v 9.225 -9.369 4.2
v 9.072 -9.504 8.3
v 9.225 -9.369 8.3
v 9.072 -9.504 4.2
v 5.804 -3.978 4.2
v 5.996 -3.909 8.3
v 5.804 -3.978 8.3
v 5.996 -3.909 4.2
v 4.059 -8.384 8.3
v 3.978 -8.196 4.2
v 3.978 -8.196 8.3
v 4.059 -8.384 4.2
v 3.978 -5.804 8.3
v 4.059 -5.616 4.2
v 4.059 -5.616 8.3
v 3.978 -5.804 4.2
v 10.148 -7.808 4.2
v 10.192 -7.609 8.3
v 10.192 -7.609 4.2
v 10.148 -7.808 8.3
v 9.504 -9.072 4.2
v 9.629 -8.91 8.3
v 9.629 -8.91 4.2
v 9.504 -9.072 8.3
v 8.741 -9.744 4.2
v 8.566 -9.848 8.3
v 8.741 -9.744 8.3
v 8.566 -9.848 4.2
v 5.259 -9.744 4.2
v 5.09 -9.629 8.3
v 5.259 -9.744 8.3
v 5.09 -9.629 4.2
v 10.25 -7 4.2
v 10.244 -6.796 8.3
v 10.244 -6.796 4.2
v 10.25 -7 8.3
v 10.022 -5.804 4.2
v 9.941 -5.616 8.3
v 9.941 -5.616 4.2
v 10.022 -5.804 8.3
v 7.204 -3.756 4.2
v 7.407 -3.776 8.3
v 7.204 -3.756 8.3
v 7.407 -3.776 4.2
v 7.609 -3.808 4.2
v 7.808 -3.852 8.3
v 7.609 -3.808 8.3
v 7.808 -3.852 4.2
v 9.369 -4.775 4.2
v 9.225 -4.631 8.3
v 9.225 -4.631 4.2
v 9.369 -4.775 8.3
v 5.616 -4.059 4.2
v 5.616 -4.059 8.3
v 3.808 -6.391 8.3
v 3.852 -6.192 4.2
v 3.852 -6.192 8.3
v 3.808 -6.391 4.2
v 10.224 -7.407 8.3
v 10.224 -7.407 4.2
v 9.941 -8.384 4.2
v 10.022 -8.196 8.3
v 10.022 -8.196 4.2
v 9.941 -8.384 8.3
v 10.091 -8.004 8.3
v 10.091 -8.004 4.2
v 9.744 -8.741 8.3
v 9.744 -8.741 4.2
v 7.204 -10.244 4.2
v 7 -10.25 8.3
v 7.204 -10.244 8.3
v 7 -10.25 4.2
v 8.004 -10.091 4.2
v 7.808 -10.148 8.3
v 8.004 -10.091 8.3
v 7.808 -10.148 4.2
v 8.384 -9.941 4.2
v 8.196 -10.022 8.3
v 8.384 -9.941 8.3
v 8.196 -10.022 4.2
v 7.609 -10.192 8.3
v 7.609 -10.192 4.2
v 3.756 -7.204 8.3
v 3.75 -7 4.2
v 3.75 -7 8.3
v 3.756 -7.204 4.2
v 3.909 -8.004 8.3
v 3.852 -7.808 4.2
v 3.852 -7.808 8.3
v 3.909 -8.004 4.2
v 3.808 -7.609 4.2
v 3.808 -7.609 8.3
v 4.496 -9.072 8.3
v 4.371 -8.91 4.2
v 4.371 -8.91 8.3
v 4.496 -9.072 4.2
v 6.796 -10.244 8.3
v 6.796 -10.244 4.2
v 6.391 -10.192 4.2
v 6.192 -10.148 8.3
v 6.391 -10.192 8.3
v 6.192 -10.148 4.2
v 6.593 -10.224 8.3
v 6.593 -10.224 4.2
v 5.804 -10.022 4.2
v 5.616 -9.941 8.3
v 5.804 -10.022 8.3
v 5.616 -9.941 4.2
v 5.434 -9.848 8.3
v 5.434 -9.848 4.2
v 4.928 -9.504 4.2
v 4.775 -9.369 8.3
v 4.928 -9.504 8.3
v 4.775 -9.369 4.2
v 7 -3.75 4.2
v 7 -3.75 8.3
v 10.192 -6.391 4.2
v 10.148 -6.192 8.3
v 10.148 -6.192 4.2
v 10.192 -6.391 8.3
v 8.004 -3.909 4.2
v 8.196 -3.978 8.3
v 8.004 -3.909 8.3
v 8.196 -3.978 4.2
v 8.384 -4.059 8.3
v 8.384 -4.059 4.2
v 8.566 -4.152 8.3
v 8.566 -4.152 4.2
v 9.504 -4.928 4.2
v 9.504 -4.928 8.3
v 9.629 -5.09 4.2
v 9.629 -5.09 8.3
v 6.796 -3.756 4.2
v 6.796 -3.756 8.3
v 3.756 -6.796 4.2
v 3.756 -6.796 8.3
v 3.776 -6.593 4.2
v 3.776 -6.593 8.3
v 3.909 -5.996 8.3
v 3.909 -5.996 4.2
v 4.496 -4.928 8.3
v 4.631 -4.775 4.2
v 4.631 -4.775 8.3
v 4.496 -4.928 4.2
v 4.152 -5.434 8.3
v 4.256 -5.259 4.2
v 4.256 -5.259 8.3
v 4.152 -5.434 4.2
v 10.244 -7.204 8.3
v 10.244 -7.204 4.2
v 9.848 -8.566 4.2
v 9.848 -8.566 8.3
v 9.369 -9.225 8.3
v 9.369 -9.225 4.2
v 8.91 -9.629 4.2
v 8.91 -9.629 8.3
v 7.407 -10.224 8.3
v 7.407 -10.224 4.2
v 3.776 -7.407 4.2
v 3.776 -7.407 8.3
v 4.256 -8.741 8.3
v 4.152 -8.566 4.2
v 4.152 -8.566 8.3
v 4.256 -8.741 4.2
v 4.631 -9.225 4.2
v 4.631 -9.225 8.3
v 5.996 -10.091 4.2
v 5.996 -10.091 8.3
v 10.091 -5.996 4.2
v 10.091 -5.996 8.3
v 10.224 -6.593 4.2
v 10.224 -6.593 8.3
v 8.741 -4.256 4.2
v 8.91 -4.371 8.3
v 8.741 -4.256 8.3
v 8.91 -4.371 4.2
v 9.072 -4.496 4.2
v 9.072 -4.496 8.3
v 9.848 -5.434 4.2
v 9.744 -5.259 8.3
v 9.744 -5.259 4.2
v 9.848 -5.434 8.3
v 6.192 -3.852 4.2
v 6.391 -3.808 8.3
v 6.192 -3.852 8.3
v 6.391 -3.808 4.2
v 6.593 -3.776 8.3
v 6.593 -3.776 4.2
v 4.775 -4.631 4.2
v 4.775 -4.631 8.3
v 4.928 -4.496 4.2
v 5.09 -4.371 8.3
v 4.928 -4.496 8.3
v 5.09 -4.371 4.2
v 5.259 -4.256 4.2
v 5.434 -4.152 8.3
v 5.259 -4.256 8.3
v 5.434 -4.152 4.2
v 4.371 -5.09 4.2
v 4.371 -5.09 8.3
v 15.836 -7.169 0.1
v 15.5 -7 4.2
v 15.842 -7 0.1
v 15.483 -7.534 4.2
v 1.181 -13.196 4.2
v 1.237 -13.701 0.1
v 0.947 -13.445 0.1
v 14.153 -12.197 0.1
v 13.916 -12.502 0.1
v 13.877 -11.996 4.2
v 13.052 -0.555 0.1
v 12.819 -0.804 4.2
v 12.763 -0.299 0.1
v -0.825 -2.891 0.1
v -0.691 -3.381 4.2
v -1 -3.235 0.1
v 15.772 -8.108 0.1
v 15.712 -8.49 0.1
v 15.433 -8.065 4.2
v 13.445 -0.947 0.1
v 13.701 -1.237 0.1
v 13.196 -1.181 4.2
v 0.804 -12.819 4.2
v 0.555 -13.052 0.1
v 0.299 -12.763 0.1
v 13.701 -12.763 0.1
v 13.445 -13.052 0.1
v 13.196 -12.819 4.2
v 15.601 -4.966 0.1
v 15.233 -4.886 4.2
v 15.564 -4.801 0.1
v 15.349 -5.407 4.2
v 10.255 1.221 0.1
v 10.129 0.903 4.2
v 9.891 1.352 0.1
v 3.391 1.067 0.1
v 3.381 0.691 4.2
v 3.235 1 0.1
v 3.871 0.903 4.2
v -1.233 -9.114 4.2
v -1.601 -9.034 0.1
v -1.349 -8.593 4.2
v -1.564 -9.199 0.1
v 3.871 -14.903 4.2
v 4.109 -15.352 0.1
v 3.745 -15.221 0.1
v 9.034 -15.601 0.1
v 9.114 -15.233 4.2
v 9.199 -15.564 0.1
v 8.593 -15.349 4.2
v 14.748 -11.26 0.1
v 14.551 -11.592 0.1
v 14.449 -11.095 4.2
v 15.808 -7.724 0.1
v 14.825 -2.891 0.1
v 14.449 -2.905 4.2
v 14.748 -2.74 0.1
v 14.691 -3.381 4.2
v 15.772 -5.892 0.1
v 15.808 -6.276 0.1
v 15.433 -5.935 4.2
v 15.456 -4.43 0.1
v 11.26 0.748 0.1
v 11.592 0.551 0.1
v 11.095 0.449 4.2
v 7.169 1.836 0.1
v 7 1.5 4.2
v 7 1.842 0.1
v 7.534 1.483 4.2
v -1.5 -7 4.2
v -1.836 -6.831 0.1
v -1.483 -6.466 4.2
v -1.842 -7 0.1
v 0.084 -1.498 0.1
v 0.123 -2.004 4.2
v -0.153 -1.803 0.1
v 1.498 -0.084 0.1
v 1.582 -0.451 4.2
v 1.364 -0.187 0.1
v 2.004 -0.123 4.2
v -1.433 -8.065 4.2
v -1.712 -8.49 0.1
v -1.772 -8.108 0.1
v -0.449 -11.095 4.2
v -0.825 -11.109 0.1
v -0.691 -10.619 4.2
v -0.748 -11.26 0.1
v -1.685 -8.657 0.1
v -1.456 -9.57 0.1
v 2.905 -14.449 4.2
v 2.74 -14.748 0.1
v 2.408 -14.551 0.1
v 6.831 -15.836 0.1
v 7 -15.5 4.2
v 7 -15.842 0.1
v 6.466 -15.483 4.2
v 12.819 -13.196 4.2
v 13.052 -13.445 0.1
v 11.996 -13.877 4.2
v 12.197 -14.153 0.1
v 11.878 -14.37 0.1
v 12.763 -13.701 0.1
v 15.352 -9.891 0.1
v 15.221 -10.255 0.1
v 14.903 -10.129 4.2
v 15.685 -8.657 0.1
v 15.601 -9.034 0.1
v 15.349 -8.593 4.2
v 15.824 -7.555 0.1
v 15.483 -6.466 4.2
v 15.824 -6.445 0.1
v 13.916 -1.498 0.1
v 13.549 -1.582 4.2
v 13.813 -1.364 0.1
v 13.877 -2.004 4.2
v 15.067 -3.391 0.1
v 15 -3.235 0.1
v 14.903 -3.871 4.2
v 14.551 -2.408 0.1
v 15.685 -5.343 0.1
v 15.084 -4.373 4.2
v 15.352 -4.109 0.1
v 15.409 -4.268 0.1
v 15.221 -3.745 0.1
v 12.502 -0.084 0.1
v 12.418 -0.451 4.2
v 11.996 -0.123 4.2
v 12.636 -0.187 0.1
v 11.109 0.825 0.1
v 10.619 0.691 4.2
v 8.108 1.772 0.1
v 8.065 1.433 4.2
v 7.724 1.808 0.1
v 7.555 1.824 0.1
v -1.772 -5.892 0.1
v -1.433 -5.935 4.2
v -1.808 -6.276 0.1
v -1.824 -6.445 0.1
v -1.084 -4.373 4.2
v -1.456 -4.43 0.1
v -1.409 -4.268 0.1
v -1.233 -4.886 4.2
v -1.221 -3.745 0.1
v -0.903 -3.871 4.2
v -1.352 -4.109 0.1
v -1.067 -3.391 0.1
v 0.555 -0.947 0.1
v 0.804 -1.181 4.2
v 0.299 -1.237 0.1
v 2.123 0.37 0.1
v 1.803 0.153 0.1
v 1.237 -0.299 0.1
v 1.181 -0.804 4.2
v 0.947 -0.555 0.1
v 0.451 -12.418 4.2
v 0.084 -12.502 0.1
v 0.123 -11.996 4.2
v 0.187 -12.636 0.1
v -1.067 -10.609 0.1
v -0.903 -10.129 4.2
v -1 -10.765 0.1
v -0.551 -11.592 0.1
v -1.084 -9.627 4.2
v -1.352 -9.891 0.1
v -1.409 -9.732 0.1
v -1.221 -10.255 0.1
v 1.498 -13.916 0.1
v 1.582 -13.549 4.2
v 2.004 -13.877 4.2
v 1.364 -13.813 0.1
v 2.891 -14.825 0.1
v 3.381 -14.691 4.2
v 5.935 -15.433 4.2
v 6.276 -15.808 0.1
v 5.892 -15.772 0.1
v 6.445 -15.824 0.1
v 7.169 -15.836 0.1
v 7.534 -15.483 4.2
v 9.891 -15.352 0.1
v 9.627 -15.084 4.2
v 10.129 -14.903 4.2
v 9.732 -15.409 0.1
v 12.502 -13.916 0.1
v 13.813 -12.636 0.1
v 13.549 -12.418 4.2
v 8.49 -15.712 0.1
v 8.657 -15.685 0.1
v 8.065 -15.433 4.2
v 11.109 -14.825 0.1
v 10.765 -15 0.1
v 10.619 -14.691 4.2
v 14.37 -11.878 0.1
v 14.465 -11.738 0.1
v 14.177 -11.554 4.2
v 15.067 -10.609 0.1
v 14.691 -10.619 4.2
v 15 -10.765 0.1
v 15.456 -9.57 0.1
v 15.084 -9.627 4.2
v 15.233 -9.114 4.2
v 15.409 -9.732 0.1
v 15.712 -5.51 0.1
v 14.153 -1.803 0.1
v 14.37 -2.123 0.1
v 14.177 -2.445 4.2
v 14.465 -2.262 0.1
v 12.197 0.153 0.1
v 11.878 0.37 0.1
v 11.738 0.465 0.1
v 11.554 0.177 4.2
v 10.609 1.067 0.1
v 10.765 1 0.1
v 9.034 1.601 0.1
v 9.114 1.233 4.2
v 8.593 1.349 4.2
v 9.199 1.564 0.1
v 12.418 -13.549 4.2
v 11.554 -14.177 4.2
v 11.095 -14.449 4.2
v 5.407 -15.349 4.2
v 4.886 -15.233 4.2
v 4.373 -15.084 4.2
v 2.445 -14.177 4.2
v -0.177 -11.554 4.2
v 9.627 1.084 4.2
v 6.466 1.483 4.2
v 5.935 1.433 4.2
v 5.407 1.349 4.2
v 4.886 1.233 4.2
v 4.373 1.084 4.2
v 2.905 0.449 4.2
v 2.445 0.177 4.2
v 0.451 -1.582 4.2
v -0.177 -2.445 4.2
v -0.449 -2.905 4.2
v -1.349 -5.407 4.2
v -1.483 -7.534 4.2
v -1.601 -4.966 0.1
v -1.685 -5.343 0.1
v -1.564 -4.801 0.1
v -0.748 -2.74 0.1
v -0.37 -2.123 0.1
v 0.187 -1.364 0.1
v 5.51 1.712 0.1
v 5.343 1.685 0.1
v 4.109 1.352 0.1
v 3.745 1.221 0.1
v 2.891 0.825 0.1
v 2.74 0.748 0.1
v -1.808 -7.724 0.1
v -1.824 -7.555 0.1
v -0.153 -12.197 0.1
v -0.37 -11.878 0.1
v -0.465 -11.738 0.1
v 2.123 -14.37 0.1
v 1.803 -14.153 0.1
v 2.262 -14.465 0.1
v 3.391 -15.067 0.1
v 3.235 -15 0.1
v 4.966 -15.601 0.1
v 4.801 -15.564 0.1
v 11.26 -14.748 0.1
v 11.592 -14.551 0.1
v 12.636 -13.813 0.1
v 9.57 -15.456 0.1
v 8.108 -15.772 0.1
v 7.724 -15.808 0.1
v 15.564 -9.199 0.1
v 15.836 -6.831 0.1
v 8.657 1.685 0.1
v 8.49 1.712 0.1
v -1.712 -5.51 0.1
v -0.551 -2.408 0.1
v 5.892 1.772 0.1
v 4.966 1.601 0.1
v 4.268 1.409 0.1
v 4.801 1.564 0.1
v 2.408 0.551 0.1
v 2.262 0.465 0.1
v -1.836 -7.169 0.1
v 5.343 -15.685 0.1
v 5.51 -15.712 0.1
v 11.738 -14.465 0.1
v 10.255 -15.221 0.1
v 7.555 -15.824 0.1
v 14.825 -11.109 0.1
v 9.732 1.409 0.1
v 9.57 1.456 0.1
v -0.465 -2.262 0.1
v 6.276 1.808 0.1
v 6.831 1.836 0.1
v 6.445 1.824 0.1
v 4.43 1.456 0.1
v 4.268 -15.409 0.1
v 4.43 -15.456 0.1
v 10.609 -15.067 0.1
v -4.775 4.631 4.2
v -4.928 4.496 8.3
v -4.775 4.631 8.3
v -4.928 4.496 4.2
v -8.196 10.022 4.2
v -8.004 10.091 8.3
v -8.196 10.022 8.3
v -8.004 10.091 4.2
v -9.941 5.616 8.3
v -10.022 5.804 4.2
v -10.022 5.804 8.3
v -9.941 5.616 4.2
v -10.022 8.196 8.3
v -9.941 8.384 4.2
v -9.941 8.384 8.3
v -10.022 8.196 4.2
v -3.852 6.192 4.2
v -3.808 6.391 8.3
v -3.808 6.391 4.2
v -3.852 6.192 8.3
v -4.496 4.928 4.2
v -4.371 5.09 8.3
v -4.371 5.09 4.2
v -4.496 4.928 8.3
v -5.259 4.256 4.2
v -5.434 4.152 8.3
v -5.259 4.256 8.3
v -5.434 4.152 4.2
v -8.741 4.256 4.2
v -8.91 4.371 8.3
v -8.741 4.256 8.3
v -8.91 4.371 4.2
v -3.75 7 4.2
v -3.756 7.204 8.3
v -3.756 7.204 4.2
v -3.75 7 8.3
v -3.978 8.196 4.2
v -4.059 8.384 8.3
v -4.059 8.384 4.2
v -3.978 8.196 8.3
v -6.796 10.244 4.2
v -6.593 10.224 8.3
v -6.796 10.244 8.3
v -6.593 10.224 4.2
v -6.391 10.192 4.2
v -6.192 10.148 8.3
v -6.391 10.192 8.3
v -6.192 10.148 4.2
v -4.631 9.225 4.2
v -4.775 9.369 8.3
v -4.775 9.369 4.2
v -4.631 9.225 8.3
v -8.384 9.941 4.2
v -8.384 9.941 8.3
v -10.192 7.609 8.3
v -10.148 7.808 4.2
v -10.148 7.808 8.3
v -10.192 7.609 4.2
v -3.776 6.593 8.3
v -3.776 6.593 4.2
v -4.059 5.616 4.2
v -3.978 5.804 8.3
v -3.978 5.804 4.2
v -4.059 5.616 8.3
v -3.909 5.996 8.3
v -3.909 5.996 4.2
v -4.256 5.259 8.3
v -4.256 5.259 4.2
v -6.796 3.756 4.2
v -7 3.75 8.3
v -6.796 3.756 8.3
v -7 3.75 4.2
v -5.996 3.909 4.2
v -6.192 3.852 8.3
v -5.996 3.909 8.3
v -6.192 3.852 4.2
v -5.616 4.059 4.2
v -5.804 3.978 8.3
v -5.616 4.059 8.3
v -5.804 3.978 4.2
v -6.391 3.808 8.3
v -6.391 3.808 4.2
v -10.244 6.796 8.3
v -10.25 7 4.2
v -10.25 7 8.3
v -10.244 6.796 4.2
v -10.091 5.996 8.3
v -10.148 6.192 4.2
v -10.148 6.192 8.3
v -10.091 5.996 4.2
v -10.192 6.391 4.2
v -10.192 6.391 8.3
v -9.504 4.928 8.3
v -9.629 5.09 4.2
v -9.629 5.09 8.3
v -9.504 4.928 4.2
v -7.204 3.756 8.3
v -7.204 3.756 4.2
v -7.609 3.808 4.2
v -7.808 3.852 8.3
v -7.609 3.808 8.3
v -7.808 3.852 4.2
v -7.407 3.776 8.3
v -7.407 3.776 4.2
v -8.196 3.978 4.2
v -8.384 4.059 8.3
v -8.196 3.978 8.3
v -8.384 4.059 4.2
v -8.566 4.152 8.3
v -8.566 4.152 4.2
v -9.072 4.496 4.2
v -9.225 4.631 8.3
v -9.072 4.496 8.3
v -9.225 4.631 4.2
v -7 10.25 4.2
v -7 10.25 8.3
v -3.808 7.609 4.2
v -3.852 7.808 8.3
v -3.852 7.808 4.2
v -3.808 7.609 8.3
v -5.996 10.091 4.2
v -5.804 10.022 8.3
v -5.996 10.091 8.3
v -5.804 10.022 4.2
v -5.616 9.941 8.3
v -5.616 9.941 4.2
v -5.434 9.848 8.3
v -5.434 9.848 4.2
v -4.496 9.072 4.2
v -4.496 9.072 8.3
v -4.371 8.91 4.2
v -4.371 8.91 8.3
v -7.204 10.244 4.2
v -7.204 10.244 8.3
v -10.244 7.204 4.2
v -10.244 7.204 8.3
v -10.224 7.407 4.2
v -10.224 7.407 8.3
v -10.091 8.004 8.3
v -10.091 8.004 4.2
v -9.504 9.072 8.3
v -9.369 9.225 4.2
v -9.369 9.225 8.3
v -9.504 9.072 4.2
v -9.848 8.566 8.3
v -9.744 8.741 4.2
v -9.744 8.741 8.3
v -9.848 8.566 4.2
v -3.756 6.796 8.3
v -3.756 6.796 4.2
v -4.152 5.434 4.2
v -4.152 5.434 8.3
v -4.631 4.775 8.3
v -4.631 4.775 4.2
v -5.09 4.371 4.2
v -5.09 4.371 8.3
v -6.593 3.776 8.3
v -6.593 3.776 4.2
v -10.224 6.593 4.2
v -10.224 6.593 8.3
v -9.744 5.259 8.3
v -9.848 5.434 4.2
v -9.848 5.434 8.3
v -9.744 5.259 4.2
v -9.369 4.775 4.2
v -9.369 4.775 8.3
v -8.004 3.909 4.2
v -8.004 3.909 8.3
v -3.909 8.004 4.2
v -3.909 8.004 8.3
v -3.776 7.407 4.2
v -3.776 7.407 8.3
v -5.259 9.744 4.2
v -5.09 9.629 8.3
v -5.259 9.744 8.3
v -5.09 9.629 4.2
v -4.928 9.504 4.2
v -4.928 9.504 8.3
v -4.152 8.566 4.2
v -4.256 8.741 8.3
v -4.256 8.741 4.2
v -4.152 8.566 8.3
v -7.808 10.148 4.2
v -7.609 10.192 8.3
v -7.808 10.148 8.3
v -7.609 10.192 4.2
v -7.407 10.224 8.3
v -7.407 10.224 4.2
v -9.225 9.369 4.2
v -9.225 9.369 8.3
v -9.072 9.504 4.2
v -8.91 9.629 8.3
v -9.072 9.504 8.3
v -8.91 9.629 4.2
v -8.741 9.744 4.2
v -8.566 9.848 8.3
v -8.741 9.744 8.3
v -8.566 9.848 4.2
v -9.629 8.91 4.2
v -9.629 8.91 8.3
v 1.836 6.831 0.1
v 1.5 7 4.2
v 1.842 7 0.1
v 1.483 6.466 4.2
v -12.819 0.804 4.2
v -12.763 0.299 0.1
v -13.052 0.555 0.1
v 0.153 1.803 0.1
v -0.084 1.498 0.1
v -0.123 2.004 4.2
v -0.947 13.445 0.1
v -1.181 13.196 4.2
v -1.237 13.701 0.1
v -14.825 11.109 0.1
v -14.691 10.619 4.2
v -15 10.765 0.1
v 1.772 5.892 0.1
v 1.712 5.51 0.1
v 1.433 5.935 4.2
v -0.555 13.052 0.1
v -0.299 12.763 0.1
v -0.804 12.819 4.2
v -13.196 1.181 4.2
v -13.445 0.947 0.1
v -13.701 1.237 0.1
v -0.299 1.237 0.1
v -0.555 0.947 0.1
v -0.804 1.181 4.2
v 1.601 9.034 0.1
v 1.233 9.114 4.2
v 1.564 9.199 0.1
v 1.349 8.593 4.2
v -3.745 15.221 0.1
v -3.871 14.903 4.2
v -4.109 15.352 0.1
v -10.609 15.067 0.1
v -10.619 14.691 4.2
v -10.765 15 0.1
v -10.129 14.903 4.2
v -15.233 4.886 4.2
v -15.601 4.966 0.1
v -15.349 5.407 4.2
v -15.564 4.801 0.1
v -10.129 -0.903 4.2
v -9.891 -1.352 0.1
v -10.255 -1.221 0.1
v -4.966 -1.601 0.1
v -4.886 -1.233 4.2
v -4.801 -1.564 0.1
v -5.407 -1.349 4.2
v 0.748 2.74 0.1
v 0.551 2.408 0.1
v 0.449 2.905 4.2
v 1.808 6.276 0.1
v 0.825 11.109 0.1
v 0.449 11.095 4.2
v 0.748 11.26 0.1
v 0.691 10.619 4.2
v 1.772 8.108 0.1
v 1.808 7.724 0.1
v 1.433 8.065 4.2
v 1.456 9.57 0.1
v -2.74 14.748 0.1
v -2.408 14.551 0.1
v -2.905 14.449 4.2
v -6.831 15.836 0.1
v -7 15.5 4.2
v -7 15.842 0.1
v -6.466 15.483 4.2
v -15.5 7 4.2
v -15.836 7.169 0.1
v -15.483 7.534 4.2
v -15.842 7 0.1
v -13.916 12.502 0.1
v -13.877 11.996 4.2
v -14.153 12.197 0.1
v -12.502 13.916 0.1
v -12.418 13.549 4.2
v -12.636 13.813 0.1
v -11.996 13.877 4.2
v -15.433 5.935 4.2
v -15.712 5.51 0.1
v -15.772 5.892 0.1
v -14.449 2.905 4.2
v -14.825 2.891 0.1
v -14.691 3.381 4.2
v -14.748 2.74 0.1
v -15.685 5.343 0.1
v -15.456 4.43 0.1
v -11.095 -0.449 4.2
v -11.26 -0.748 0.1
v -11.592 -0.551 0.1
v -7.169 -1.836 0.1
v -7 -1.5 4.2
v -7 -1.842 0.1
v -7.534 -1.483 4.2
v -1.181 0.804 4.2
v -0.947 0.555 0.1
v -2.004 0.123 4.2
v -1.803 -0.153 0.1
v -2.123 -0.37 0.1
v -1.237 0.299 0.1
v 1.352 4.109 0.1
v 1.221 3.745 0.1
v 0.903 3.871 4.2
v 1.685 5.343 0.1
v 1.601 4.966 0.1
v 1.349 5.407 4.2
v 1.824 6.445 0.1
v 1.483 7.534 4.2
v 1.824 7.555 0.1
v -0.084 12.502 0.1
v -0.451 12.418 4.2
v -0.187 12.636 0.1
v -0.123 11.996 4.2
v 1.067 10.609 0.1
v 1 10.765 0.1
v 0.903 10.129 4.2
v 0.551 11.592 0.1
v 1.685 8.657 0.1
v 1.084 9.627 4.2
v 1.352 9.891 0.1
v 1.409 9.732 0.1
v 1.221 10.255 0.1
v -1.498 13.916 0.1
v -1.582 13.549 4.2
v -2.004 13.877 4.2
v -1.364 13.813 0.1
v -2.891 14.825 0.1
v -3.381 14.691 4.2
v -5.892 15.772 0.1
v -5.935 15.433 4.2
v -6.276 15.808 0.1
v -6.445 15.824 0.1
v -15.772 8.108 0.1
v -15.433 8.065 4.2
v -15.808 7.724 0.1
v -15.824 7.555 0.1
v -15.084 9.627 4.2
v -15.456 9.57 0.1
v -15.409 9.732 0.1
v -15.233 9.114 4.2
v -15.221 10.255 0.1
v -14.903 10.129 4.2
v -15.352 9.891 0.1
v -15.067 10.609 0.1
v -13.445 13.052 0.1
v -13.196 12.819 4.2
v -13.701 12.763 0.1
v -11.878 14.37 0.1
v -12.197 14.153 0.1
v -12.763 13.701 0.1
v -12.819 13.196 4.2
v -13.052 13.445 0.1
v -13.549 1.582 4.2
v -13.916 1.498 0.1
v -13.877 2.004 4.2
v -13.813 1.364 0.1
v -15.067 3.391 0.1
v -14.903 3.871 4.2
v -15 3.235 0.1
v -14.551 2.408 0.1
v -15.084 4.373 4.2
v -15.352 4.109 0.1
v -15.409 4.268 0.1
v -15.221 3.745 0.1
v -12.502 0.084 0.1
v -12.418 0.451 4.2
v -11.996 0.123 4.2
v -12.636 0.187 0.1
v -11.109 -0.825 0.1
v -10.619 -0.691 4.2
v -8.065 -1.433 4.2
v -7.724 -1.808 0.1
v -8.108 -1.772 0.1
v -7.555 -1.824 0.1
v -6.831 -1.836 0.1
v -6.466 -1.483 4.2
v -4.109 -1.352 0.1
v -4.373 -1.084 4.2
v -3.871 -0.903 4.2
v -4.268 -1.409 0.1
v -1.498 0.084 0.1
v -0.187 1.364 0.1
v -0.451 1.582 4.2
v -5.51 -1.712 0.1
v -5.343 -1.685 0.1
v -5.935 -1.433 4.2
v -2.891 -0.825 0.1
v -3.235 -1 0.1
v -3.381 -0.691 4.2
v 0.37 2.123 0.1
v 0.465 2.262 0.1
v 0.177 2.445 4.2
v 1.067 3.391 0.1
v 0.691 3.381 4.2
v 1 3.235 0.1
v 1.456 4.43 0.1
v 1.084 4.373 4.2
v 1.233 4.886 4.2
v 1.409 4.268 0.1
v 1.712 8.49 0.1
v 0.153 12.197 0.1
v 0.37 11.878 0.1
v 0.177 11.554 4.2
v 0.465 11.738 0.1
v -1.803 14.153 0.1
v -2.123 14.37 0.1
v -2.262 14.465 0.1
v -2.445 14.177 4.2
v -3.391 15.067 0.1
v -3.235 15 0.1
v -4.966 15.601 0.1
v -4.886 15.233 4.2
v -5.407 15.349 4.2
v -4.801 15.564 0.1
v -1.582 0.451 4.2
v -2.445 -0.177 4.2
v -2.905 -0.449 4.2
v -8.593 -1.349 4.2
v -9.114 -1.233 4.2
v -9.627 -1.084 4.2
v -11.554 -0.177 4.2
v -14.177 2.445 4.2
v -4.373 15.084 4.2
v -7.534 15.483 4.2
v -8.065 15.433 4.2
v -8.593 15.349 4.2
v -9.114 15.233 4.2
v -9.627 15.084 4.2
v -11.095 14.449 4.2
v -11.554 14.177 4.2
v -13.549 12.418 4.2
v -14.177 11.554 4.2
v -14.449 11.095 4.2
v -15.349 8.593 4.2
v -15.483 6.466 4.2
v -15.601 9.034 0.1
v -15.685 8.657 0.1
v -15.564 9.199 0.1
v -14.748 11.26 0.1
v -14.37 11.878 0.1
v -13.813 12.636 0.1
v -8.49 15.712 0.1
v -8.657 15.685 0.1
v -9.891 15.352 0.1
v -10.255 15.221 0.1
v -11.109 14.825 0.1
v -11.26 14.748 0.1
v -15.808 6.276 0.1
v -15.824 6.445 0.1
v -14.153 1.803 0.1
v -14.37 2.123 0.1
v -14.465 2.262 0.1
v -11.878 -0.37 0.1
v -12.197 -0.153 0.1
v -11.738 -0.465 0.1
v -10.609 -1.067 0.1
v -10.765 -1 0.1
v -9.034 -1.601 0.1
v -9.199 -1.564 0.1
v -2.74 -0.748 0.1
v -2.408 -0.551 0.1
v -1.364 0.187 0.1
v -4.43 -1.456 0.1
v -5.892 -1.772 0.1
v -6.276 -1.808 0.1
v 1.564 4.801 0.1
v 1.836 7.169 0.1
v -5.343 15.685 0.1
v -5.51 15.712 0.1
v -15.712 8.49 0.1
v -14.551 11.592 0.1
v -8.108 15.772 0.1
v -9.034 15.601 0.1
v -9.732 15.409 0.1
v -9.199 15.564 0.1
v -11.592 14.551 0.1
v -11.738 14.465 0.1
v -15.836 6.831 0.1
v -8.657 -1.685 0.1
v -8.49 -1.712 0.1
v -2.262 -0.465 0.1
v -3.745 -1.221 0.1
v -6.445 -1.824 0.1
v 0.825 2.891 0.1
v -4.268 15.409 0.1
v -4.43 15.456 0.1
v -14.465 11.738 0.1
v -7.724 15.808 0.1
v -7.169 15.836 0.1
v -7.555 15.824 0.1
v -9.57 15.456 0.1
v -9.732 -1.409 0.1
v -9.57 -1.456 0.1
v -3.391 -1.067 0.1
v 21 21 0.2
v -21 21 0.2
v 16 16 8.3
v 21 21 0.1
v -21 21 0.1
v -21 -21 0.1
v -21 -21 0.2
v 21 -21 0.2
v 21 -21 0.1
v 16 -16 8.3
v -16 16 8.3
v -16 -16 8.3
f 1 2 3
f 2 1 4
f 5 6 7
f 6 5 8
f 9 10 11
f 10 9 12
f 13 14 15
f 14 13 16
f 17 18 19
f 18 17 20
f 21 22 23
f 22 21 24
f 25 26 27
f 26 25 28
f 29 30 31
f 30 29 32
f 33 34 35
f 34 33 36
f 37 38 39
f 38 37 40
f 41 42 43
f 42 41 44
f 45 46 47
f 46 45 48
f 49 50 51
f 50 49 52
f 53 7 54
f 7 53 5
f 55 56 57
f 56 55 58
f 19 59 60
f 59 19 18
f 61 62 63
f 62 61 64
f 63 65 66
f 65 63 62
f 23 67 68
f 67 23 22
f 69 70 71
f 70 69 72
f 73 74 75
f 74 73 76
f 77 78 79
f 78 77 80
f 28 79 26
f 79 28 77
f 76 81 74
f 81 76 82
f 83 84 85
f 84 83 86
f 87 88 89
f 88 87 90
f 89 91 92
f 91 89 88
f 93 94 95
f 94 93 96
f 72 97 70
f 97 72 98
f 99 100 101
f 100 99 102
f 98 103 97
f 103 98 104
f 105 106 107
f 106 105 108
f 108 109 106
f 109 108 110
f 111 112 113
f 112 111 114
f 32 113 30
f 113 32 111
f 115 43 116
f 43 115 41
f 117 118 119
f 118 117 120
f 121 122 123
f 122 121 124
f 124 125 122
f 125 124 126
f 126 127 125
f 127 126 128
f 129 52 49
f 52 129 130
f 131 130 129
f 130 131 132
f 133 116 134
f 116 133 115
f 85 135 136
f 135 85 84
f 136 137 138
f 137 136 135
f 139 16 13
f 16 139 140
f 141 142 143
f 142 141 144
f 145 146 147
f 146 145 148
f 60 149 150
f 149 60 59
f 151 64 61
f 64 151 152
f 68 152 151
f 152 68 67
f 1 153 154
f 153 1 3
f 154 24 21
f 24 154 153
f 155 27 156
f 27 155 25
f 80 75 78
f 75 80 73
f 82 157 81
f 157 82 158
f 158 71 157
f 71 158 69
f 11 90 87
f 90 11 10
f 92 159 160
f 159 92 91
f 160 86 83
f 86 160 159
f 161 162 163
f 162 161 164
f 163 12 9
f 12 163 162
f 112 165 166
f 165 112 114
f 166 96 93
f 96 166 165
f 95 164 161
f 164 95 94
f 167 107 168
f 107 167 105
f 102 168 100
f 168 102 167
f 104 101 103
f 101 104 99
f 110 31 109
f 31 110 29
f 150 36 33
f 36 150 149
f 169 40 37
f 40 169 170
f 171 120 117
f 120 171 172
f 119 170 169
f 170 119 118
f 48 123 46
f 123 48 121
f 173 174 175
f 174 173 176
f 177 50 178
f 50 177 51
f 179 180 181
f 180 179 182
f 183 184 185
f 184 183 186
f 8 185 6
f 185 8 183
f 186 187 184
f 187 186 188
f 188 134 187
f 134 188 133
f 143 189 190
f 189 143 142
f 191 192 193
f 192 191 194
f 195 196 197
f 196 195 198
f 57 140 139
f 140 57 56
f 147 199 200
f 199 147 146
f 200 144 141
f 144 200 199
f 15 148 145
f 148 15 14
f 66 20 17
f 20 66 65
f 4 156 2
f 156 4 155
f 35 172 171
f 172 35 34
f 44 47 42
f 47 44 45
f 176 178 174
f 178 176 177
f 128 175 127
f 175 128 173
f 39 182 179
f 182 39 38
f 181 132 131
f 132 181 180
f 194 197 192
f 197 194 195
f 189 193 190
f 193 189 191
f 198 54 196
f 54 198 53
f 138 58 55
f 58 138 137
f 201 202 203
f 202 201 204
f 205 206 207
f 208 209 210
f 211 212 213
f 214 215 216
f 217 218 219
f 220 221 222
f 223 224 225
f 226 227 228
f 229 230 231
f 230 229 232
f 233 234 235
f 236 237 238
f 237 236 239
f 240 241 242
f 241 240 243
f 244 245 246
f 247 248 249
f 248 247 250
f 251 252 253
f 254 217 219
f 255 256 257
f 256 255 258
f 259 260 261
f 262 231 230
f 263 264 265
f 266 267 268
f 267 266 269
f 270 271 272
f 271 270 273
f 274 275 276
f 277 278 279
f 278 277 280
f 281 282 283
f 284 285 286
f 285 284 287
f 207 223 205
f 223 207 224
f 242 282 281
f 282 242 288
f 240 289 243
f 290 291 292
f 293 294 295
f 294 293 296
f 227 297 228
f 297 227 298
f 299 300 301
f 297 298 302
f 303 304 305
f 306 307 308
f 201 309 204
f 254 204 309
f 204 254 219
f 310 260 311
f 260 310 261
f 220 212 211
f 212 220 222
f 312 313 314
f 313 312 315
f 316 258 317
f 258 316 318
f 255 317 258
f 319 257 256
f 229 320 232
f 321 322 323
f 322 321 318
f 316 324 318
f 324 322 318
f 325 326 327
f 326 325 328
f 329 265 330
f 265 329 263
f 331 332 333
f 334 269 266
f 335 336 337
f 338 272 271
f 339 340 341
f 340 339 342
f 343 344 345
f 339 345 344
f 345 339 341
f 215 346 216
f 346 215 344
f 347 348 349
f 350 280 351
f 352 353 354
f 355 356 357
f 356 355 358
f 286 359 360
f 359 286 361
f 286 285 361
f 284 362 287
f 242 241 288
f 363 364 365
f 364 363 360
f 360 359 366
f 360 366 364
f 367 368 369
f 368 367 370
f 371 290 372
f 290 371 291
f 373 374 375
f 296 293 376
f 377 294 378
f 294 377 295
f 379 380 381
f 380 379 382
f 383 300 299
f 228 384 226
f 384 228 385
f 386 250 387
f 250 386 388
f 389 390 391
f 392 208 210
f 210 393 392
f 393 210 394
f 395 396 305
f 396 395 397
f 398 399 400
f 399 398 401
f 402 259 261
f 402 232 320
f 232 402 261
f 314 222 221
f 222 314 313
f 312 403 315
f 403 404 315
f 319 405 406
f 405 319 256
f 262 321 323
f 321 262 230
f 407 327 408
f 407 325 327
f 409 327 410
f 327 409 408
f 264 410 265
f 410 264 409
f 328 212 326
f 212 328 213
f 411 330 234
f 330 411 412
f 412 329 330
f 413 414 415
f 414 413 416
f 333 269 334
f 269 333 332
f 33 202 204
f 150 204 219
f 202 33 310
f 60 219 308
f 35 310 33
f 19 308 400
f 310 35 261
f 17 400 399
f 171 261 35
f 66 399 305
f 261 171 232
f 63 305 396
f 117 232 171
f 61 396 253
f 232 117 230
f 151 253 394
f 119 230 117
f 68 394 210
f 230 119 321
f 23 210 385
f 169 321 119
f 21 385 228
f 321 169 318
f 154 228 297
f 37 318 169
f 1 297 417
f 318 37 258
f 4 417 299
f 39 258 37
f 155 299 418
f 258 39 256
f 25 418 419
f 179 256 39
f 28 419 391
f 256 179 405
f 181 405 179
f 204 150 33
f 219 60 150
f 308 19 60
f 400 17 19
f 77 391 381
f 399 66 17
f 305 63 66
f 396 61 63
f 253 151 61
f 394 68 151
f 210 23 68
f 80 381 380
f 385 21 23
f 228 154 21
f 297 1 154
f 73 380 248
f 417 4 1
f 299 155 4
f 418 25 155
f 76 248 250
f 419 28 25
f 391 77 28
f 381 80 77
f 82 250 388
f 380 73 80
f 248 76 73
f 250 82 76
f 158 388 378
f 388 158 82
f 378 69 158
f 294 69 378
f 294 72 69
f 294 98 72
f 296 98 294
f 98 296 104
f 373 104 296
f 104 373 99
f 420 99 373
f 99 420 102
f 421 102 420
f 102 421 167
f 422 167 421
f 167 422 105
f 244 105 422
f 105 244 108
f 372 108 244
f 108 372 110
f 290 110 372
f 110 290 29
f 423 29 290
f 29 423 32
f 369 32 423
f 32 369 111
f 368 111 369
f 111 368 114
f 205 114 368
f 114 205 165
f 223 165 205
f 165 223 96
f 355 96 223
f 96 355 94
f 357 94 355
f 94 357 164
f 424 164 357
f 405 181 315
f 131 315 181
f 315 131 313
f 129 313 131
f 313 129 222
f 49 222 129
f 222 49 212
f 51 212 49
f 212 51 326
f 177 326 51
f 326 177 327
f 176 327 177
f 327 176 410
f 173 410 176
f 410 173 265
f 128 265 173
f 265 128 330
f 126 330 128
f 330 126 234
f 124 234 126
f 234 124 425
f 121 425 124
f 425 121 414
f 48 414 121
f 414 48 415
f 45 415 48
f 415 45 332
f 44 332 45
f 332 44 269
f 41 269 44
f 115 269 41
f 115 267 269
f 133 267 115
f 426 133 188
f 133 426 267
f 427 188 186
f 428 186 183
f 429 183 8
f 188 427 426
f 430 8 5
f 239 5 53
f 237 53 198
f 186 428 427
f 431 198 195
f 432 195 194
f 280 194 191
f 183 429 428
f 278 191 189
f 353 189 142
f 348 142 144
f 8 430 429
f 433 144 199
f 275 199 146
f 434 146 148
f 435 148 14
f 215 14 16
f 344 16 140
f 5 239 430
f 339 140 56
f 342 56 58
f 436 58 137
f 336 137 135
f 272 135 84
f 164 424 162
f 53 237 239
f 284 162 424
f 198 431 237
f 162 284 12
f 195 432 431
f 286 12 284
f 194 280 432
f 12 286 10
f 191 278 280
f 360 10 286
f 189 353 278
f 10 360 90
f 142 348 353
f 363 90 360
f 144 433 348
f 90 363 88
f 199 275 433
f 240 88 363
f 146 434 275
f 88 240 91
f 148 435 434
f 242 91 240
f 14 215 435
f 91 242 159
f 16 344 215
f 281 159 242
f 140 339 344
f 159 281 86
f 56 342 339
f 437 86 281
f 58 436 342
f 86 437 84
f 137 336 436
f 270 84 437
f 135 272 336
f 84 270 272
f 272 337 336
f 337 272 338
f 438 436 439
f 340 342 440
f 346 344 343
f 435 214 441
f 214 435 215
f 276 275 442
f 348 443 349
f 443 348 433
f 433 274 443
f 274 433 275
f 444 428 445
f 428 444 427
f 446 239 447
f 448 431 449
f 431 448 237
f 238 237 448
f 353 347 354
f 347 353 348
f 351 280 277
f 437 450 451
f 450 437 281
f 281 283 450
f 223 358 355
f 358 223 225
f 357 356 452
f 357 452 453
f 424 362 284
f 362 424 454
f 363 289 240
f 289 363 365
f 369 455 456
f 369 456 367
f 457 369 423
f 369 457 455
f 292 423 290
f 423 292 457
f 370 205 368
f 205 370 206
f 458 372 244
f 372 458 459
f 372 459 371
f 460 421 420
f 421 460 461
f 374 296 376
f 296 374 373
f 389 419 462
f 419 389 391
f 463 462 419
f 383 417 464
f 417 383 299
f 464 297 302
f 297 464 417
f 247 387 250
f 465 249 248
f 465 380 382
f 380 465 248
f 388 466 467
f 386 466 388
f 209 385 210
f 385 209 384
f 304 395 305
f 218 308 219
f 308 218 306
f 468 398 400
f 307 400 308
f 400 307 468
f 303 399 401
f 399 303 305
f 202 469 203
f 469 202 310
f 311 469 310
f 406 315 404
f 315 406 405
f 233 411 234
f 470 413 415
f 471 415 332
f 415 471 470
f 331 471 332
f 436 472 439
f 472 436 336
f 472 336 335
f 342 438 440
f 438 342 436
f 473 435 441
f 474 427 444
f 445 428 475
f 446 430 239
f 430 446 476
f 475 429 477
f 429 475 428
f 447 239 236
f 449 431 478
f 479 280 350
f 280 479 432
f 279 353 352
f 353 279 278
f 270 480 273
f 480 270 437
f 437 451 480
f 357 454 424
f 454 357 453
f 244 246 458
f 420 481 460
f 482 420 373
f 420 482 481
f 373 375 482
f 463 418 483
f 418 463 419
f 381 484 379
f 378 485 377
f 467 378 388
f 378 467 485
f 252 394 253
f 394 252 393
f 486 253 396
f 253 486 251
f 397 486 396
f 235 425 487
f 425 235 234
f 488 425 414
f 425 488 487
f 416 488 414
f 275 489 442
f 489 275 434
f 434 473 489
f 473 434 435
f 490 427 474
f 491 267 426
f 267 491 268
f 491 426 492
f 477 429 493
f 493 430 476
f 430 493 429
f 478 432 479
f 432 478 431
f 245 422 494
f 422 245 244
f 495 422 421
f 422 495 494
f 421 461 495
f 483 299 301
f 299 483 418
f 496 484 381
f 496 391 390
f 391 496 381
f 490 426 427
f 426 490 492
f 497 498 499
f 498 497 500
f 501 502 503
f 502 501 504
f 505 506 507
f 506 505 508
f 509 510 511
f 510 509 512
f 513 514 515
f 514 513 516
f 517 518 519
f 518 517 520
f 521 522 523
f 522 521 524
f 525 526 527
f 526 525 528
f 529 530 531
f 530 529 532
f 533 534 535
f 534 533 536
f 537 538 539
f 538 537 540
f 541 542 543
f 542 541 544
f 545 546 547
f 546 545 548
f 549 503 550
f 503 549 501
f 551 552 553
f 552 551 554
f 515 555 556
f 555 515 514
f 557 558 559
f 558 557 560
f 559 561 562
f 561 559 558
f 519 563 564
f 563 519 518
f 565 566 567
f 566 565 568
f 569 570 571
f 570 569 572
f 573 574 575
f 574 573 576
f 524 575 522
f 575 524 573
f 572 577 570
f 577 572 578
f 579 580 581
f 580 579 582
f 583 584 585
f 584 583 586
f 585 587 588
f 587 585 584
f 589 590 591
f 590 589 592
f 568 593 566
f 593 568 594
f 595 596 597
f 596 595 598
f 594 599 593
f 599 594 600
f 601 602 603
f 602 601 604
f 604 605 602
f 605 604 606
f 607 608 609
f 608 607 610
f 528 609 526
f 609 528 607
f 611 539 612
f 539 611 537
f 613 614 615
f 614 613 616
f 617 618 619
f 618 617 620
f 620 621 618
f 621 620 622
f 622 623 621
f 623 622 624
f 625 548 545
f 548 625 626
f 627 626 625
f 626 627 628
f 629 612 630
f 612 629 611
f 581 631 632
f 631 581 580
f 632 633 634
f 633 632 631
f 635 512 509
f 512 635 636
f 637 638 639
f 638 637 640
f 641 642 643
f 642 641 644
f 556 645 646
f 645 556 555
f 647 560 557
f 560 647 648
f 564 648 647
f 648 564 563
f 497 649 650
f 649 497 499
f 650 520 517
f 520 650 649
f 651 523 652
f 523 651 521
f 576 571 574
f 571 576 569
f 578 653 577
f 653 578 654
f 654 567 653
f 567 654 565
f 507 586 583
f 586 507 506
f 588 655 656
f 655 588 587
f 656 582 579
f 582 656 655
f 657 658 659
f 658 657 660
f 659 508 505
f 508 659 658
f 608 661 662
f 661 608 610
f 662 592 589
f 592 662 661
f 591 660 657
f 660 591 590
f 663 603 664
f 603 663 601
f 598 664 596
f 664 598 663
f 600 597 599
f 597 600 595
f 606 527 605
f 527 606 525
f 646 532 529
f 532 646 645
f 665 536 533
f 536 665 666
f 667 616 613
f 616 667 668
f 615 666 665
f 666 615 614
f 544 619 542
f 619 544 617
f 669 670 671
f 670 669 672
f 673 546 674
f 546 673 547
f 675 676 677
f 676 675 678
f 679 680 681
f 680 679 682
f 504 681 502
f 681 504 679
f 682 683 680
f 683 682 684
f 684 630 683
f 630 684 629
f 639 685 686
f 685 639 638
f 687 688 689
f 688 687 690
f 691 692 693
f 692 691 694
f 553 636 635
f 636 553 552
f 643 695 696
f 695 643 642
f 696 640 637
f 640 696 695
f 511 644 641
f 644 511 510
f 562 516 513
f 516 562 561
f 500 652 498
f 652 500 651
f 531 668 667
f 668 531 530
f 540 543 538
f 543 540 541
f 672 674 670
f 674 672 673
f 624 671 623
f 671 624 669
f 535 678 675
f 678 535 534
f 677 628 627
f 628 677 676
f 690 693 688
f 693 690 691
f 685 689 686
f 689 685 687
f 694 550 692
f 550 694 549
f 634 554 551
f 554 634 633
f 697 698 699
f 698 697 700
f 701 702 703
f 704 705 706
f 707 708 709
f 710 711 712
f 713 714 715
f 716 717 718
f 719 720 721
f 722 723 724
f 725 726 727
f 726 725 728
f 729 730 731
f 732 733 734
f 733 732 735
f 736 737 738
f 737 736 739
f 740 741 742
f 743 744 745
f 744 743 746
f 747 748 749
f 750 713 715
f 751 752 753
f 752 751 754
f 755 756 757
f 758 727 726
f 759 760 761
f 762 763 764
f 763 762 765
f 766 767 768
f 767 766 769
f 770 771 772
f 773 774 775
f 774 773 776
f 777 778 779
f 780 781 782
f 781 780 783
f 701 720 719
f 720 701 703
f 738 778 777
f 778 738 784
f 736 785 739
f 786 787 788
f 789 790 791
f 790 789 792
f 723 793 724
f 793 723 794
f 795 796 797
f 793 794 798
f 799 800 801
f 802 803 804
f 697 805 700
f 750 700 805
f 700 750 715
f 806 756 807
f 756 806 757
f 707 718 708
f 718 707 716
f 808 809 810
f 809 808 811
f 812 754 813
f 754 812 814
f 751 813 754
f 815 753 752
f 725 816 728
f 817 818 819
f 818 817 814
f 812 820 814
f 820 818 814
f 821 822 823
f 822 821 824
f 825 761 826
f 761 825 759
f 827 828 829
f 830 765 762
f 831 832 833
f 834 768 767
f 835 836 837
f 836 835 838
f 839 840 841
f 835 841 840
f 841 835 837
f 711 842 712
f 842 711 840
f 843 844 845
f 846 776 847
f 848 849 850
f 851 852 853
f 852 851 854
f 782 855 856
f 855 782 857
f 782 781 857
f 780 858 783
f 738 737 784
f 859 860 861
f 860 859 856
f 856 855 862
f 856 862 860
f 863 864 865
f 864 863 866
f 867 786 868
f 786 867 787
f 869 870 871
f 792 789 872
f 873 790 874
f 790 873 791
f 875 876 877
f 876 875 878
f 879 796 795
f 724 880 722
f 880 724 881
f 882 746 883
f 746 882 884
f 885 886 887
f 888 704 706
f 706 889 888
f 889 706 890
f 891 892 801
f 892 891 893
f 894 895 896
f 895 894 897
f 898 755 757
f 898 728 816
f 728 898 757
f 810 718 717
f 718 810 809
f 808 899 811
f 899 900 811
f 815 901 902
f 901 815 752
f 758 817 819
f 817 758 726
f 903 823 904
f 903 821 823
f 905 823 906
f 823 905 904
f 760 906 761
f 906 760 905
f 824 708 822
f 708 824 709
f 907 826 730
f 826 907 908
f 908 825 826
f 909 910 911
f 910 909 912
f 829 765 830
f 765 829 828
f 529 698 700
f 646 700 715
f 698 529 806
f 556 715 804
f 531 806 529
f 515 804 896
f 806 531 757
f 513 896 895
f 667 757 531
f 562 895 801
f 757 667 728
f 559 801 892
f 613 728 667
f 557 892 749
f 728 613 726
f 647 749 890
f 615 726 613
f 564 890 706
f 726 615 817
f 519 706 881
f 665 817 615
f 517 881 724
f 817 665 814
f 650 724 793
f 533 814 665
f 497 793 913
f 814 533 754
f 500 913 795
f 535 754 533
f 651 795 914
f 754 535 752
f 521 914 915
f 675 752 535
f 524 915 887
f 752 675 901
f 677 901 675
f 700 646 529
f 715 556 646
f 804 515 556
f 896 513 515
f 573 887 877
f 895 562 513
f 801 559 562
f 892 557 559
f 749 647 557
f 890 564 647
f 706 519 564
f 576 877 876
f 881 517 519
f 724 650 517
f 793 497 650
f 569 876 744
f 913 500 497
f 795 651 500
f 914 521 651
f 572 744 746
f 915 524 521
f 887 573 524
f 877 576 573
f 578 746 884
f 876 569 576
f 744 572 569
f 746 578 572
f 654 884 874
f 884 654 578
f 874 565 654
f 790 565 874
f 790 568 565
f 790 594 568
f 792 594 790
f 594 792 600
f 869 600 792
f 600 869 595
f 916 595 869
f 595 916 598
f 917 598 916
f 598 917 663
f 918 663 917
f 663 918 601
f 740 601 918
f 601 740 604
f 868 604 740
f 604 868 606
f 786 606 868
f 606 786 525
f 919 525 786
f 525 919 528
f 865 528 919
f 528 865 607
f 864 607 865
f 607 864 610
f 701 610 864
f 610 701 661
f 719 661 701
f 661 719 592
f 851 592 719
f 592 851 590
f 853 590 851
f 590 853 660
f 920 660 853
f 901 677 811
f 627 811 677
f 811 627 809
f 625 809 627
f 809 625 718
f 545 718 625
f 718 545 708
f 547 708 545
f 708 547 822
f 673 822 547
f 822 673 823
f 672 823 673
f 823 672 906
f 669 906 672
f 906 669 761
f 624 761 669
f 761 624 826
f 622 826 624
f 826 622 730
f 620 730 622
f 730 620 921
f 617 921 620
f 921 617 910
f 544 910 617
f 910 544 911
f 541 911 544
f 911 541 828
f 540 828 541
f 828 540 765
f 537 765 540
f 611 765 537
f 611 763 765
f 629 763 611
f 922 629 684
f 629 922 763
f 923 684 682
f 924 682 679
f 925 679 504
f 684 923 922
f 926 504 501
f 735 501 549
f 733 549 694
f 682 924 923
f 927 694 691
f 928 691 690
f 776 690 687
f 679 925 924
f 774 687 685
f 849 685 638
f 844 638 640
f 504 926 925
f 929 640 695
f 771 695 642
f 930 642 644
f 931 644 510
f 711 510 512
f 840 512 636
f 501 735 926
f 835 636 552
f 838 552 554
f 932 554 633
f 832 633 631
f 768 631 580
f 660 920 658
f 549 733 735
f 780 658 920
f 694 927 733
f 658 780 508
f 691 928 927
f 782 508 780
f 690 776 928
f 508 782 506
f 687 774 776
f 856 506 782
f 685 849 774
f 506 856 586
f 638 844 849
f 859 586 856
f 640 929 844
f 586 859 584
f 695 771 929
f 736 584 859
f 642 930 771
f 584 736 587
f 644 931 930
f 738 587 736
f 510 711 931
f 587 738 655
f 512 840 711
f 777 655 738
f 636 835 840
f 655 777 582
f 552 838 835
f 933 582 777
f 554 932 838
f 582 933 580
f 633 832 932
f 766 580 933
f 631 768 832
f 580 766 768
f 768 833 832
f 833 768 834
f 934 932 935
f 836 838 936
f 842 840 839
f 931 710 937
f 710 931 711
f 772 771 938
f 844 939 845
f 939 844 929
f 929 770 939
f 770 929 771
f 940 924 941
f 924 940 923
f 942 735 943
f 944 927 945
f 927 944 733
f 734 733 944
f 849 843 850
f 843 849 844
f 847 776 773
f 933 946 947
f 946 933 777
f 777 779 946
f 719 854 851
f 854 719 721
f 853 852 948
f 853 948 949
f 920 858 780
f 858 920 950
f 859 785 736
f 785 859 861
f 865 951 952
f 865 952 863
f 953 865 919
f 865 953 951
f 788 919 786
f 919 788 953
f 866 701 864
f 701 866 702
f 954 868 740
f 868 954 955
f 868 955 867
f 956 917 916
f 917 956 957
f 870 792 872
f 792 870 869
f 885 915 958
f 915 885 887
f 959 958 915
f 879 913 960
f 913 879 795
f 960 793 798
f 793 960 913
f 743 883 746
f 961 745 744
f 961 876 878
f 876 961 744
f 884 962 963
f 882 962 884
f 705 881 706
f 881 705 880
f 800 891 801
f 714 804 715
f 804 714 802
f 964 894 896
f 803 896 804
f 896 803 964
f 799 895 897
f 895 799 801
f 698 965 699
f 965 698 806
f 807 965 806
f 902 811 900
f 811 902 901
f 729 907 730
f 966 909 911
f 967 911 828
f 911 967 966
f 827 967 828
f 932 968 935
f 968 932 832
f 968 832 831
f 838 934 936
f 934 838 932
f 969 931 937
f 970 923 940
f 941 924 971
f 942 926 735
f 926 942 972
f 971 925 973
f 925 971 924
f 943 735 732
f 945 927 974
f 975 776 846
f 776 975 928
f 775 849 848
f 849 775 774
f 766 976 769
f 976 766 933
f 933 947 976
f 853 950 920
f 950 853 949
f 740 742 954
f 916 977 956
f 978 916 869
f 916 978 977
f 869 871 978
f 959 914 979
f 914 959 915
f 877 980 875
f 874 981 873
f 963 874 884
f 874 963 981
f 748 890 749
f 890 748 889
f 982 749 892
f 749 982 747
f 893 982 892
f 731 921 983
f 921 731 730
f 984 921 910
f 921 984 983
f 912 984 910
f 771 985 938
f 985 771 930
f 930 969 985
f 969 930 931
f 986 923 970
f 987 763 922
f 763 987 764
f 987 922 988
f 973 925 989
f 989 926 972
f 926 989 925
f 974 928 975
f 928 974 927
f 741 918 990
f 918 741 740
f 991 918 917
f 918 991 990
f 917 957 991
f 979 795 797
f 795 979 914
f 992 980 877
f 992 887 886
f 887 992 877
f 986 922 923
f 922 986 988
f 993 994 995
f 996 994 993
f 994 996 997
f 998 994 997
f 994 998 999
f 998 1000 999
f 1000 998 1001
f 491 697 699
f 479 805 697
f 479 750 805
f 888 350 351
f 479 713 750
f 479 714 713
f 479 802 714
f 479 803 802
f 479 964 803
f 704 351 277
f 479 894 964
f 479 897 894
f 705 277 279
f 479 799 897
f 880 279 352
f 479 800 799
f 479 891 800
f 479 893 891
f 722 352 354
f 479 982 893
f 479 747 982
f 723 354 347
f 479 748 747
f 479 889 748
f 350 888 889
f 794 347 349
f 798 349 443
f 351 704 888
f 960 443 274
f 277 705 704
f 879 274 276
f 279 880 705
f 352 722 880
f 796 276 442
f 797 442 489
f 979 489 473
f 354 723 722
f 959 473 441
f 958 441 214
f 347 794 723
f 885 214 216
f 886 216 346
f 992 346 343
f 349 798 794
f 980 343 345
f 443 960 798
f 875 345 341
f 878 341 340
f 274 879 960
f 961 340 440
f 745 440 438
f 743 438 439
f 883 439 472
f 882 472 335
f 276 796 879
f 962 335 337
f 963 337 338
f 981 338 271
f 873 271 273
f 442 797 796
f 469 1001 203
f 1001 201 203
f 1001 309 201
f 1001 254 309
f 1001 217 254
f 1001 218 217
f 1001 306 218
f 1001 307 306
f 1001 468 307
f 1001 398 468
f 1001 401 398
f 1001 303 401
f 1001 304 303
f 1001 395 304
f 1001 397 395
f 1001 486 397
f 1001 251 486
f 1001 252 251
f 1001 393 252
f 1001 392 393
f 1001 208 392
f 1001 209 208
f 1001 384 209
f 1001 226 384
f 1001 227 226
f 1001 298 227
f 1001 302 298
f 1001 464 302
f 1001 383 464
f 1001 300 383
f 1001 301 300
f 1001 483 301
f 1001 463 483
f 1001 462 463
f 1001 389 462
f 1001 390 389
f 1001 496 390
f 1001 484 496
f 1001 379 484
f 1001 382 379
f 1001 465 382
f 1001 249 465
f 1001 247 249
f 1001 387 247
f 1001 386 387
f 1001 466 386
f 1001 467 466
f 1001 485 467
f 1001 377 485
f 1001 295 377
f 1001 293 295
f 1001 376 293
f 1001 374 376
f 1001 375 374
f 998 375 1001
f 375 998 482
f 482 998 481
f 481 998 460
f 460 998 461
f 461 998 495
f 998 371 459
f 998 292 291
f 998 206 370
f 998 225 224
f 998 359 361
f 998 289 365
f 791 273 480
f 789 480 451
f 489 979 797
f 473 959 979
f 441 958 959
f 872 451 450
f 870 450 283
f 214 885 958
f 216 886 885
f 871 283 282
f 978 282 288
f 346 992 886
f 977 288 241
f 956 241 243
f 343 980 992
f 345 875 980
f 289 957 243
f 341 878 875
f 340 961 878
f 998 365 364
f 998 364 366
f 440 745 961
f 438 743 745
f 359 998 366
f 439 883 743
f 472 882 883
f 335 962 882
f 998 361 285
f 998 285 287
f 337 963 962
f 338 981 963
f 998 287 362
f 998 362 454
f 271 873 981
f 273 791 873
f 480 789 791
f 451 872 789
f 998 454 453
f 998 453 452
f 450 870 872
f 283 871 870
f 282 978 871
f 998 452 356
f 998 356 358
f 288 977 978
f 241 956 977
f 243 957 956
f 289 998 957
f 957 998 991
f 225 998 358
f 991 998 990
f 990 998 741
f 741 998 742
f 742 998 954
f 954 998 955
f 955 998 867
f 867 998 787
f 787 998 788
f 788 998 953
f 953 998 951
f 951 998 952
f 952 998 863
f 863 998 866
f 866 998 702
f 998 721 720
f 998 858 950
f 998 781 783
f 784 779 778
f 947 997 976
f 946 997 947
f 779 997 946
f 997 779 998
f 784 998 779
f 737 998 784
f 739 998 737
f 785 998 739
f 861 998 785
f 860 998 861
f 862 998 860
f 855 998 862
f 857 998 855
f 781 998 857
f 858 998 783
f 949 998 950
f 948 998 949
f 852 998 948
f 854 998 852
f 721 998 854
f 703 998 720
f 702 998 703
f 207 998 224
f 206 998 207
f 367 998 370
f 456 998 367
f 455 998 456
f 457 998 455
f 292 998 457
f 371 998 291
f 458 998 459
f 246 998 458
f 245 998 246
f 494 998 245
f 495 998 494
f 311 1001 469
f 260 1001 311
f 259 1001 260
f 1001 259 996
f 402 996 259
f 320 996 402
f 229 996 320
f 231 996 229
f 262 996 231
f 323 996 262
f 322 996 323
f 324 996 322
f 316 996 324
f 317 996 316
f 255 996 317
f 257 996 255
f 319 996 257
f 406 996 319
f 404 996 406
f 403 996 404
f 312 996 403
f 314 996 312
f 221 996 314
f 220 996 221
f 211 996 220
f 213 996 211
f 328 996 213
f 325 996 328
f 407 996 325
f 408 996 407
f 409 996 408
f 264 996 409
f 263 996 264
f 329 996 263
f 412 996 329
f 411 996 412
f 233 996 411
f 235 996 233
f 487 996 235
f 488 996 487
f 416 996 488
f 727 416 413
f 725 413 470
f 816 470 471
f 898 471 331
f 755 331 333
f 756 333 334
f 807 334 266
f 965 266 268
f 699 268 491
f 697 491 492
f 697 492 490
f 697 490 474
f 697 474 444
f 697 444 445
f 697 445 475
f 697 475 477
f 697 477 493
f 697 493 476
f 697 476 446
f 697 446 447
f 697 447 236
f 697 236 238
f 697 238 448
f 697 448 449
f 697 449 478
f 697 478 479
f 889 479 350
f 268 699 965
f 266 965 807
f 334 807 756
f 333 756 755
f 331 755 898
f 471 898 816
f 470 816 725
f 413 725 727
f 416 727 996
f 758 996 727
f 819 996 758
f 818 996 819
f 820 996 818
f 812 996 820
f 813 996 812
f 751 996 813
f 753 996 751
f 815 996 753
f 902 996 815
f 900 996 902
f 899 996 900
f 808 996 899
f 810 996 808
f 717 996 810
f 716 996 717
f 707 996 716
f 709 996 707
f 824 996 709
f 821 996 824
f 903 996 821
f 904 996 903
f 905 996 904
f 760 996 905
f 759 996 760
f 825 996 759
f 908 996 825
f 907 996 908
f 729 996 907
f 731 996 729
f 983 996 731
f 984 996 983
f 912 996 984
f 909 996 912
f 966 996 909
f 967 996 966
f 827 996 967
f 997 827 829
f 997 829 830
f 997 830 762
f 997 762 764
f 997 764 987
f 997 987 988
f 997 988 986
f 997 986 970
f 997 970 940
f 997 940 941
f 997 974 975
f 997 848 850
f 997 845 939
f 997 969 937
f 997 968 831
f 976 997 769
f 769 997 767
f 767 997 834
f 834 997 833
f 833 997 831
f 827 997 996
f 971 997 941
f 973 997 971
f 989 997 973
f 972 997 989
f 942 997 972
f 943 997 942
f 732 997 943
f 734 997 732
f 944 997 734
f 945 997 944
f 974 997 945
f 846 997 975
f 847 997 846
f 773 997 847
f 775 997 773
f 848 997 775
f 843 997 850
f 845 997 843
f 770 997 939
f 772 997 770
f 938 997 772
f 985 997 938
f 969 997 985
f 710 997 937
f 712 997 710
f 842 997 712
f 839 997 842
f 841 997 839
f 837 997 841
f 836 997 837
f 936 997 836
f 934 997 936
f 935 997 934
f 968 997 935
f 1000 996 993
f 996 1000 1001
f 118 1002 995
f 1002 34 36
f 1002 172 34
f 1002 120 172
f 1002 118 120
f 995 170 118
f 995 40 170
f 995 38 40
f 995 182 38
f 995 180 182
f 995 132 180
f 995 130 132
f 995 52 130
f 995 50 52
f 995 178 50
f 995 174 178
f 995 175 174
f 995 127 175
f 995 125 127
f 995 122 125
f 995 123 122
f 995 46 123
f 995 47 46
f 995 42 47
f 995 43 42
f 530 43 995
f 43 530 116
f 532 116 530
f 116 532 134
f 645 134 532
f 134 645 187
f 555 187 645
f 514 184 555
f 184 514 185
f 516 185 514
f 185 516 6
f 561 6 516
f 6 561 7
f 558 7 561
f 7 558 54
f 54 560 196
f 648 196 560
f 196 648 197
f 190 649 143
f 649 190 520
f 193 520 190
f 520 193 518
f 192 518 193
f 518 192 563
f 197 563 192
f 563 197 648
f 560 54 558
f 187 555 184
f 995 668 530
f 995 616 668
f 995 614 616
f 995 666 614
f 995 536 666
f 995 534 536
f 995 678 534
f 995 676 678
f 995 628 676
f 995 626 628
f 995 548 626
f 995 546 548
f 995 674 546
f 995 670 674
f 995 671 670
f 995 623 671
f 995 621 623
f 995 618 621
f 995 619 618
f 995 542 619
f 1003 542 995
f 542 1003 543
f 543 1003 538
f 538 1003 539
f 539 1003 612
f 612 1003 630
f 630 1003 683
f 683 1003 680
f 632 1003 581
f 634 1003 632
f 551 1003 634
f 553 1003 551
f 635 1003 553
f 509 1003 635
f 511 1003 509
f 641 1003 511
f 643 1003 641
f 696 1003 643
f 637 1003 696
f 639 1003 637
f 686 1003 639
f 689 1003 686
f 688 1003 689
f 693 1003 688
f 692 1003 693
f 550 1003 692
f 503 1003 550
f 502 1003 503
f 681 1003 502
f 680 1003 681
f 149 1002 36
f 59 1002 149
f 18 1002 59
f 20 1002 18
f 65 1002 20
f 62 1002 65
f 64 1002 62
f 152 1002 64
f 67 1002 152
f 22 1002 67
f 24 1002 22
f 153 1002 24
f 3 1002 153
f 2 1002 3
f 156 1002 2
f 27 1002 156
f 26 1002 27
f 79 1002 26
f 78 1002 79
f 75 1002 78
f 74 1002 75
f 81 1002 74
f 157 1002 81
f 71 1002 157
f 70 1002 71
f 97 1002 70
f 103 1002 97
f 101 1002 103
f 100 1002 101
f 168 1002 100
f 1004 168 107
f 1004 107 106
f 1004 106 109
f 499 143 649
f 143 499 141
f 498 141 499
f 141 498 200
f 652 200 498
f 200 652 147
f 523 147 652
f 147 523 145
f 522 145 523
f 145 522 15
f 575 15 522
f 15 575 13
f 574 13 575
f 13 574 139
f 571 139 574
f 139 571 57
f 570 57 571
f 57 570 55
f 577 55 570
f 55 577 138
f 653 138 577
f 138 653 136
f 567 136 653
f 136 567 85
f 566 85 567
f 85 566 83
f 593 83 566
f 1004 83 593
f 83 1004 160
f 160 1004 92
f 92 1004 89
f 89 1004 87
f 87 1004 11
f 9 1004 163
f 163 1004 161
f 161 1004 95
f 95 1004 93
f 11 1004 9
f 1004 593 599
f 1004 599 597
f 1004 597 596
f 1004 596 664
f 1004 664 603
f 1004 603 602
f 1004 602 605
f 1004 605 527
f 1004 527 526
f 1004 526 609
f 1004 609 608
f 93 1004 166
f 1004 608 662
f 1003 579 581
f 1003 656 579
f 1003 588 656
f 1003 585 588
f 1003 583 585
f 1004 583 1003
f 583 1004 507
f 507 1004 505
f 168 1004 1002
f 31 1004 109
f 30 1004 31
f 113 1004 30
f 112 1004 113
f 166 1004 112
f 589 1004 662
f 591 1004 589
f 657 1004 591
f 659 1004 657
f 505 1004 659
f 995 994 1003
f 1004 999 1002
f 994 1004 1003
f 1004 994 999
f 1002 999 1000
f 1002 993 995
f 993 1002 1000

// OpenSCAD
bottom = 42;
top = 32;
shoe_height = 8.2;

plate_thickness = 4;
plate_size = 50;

module shoe(_bottom, _top, _height) {
  translate([0,0,_height/2]) rotate([0,180,0]) hull() {
    translate([0,0,0.05]) cube(size = [_bottom, _bottom, 0.1], center = true);
    translate([0,0,_height/2]) cube(size = [_top,_top,_height], center = true);
  }
}

module screw_hole(_radius=3.25, _head_radius=8.5, _finger_radius=10.5) {
  union() {
    translate([0,0,0]) cylinder(h=1, r1=_radius+1, r2=_radius, $fn=100);
    translate([0,0,0]) cylinder(h = 20, r=_radius, $fn=100);
    translate([0,0,7]) cylinder(h = 6, r1=_head_radius, r2=_finger_radius, $fn=100);
  }
}

rotate([180,0,0]) translate([0,0,-shoe_height])  {
    difference() {
        translate([0,0,4])   shoe(bottom, top, shoe_height);
        union() {
            translate([7,7,-3]) screw_hole(3.25, 8.5, 9);
            translate([-7,-7,-3]) screw_hole(3.25, 8.5, 9);
        }
    }
}
